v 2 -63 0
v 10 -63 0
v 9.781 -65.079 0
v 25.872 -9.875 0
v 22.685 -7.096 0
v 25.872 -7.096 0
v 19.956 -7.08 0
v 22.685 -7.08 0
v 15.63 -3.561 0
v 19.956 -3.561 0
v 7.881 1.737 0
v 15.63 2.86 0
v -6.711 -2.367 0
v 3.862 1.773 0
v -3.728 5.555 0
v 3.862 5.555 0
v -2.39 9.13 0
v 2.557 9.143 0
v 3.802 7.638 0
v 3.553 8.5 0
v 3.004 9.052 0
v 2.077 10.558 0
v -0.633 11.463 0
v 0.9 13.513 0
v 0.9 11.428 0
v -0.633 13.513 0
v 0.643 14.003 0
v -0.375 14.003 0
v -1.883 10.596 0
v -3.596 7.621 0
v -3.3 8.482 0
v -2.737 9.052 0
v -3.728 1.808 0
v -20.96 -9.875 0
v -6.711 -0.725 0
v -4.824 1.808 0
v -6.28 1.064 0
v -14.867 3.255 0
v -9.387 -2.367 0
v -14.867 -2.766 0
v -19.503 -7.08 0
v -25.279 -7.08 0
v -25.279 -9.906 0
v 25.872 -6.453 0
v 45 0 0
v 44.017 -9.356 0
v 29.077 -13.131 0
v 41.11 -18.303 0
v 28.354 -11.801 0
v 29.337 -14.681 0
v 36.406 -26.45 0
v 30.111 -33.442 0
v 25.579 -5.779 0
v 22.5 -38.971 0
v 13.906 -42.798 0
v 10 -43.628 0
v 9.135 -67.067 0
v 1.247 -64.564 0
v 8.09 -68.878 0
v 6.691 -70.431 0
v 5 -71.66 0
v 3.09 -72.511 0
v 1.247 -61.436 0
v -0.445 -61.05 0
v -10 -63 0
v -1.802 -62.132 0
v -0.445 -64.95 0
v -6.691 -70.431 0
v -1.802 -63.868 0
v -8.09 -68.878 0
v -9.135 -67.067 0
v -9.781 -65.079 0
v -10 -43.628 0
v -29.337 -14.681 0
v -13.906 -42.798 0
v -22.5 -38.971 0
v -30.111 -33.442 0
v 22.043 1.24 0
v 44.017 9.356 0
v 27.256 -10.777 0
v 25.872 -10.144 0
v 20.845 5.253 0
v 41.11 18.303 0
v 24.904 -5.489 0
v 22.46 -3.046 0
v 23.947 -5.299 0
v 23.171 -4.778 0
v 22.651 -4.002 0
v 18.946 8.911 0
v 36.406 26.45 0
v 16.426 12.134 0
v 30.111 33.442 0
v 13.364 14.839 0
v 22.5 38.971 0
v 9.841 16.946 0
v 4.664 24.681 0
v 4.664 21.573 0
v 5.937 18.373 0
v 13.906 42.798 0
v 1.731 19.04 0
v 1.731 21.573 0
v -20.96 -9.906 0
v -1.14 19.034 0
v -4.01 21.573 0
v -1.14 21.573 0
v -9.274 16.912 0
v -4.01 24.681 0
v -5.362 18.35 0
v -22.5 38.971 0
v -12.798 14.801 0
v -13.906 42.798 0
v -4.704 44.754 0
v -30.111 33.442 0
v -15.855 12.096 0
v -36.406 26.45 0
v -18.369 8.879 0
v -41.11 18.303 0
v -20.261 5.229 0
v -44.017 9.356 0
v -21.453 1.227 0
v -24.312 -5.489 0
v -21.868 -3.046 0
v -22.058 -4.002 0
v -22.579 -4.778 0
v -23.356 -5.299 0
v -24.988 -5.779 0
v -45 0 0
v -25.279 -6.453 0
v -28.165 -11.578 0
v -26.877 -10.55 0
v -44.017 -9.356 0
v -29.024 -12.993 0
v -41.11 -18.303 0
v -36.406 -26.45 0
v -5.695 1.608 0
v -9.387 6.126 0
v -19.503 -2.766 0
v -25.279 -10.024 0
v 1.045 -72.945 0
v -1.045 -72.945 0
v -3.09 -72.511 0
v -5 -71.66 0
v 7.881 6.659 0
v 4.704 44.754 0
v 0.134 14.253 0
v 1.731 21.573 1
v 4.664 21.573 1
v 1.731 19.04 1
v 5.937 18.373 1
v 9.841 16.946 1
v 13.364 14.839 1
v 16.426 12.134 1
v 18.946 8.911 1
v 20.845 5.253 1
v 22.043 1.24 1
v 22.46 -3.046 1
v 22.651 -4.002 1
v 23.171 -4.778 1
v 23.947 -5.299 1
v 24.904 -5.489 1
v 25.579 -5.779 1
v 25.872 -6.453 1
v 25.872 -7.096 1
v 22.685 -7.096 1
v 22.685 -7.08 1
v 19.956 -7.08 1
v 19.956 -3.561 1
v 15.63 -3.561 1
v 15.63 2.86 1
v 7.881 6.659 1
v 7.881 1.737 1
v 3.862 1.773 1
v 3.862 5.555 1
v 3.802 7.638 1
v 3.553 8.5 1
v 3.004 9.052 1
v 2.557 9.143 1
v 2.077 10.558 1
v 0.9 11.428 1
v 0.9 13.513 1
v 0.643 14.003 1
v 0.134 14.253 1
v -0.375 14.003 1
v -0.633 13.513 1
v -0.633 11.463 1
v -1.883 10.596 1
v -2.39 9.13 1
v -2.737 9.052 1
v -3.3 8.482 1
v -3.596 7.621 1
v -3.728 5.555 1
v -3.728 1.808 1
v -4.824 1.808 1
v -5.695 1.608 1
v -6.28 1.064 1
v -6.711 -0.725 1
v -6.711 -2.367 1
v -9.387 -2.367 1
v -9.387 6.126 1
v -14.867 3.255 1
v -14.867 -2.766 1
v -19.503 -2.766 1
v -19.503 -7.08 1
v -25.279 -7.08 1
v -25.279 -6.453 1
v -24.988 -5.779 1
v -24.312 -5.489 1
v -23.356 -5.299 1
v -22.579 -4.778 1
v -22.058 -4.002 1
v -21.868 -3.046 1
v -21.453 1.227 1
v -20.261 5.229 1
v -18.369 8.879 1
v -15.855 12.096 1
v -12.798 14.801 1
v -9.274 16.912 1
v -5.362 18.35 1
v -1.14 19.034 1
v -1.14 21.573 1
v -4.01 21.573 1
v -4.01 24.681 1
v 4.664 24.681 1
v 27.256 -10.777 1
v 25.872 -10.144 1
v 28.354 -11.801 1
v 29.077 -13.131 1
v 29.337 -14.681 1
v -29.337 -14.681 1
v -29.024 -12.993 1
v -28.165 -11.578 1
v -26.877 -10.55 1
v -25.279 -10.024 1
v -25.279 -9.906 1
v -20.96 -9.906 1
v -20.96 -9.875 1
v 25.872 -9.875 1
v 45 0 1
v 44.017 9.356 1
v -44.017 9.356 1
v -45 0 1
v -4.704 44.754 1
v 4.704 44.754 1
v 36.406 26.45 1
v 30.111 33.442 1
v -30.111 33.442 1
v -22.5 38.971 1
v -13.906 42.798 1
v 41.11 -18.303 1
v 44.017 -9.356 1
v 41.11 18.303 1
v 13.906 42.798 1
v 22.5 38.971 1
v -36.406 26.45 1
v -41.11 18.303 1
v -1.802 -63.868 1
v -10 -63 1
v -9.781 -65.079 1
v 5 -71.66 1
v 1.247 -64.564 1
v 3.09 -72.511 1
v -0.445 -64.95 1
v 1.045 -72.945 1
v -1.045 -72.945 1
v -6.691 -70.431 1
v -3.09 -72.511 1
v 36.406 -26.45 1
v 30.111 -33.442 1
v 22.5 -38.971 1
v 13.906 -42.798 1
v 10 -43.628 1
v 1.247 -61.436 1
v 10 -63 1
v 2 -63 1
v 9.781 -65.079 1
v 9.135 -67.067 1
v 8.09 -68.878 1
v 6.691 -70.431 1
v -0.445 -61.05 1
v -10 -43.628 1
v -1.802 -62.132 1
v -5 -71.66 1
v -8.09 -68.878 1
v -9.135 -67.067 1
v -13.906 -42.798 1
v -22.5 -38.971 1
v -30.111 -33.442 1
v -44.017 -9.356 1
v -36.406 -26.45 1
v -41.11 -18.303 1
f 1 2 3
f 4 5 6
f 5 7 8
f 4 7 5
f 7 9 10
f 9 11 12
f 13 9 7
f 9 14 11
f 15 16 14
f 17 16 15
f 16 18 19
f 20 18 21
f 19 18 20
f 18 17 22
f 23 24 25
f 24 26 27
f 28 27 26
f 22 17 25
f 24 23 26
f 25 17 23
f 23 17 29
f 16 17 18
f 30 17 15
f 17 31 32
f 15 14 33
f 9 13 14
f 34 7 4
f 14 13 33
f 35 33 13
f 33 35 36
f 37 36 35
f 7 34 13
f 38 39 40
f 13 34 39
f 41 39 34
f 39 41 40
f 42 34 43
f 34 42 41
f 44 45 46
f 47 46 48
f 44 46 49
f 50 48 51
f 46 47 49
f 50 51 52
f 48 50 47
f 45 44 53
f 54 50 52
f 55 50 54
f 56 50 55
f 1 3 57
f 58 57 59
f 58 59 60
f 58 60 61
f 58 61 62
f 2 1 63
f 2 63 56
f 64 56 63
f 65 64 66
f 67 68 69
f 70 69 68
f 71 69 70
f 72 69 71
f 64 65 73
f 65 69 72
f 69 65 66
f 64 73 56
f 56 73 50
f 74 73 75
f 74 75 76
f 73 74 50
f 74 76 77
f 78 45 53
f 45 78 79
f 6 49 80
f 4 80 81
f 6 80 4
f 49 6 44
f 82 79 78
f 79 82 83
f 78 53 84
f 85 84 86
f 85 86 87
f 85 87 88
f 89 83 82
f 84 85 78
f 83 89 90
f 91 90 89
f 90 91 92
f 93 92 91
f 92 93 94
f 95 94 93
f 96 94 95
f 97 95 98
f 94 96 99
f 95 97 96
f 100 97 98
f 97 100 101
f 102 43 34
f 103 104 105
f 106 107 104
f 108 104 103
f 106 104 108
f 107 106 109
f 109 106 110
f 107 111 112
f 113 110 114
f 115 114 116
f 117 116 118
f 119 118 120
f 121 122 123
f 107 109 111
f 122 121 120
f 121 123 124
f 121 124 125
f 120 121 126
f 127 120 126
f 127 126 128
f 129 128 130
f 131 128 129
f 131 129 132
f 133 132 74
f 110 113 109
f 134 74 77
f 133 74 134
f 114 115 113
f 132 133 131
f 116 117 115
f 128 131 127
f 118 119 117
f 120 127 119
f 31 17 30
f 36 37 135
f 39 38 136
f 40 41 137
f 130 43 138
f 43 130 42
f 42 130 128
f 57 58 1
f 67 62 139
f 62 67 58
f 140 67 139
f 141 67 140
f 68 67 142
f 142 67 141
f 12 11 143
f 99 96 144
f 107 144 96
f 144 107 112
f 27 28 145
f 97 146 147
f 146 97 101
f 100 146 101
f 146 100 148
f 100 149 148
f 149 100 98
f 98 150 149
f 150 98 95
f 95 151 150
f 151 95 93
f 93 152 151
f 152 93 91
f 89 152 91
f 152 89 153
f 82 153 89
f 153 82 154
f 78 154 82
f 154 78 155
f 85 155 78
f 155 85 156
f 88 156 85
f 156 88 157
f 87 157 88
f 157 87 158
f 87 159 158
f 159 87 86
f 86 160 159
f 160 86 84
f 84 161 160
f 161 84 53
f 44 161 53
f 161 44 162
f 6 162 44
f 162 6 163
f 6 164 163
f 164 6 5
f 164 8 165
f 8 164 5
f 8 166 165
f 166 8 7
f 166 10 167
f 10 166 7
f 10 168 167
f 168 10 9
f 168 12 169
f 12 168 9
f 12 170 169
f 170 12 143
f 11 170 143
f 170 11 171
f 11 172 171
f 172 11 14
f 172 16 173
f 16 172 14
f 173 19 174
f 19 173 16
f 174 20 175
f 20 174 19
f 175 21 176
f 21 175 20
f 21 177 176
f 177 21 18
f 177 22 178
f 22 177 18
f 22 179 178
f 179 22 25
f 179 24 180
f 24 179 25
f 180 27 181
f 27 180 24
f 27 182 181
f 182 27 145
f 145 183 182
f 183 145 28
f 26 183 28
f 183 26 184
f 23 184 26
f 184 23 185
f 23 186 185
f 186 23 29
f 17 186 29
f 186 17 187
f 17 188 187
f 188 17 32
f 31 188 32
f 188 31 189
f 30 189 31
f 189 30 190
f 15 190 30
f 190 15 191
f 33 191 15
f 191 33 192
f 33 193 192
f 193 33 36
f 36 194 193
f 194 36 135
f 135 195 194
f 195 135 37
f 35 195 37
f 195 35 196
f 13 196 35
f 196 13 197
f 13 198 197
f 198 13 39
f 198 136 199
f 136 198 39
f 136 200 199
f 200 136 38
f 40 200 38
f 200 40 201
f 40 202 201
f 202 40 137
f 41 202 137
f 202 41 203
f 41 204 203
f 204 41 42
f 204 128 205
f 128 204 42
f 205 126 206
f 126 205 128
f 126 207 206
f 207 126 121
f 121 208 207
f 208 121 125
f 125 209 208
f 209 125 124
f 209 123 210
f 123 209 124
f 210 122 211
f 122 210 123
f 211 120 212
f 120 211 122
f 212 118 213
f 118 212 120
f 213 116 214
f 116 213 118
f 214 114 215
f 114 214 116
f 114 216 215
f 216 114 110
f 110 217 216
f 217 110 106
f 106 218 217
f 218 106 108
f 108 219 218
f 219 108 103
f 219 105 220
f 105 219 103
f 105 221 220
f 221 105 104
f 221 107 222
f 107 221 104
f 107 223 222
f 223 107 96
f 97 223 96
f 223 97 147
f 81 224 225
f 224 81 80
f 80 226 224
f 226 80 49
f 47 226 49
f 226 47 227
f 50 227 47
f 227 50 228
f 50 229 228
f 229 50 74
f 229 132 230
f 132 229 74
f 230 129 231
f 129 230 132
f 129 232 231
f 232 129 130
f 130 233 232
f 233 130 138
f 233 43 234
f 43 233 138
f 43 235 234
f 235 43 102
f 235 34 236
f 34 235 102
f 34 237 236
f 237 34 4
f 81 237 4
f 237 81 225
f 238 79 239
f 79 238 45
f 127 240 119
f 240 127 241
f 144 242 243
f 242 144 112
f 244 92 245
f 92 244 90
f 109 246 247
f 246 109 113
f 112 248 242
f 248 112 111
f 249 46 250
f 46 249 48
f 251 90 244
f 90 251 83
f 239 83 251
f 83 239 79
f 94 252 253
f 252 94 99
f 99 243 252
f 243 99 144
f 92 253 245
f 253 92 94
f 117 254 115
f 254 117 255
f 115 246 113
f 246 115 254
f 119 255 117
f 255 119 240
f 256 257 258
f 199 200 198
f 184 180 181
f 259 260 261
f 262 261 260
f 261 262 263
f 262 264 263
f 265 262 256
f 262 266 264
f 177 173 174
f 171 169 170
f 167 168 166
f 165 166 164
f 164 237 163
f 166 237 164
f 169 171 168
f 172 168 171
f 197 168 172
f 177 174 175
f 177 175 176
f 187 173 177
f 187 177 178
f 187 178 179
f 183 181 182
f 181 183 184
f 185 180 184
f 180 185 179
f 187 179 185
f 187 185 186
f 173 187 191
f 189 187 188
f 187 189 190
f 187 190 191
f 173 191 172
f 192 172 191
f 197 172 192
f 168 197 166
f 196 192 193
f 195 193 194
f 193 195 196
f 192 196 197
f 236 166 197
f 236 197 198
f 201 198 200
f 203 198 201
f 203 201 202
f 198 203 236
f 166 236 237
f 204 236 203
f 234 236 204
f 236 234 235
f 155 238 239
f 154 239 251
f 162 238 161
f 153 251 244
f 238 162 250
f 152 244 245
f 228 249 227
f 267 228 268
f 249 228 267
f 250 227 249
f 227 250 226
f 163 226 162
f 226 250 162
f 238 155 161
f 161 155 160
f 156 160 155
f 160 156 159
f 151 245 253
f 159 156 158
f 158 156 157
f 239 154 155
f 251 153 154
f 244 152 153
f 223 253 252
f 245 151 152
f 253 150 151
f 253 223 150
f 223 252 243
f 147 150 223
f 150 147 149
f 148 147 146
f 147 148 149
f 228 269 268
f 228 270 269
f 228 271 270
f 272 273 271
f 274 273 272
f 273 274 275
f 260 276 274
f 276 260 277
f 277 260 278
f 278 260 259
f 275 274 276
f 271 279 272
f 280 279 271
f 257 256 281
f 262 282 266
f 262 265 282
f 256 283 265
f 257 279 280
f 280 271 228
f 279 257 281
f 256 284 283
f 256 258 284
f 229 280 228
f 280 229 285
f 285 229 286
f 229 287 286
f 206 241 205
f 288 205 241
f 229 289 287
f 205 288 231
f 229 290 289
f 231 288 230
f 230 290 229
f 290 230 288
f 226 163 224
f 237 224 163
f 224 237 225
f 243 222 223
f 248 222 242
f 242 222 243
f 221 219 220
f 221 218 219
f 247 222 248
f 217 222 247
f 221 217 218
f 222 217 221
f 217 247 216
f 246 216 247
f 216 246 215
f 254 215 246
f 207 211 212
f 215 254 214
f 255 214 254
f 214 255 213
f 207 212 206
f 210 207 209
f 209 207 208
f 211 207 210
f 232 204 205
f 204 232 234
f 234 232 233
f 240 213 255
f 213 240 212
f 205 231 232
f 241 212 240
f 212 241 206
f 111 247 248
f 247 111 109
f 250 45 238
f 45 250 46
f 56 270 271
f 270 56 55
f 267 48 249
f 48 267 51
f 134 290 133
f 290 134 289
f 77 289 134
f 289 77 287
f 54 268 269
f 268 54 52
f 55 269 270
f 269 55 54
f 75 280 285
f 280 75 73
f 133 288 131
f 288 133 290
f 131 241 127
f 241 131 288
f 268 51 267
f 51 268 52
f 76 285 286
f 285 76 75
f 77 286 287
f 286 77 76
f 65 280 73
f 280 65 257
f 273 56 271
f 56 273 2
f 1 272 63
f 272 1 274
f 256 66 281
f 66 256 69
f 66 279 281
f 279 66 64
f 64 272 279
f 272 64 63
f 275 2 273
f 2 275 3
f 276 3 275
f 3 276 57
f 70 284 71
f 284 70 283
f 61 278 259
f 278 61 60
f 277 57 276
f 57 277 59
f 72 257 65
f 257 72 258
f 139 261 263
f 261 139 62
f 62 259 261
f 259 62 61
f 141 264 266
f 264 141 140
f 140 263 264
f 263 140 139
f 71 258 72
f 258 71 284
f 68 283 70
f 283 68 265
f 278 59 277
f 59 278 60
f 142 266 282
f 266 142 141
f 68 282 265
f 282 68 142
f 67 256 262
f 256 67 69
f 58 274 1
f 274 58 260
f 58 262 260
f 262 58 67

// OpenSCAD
// file: ../relocately-logo.scad
// Module names are of the form poly_<inkscape-path-id>().
// As a result you can associate a polygon in this OpenSCAD program with the
//  corresponding SVG element in the Inkscape document by looking for 
//  the XML element with the attribute id="inkscape-path-id".

// Paths have their own variables so they can be imported and used 
//  in polygon(points) structures in other programs.
// The NN_points is the list of all polygon XY vertices. 
// There may be an NN_paths variable as well. If it exists then it 
//  defines the nested paths. Both must be used in the 
//  polygon(points, paths) variant of the command.

profile_scale = 1; //25.4/90; //made in inkscape in mm

// helper functions to determine the X,Y dimensions of the profiles
function min_x(shape_points) = min([ for (x = shape_points) min(x[0])]);
function max_x(shape_points) = max([ for (x = shape_points) max(x[0])]);
function min_y(shape_points) = min([ for (x = shape_points) min(x[1])]);
function max_y(shape_points) = max([ for (x = shape_points) max(x[1])]);

height = 5;
width = 1.0;


path3725_0_points = [[-4.010350,-19.681227],[-4.010350,-16.572889],[-1.140240,-16.572889],[-1.140240,-14.033510],[-5.362254,-13.350192],[-9.274041,-11.912513],[-12.797710,-9.800999],[-15.855372,-7.096173],[-18.369139,-3.878559],[-20.261122,-0.228683],[-21.453430,3.772933],[-21.868175,8.045762],[-22.058523,9.001999],[-22.579418,9.778040],[-23.355635,10.298758],[-24.311951,10.489025],[-24.987466,10.779475],[-25.279334,11.453307],[-25.279334,12.079626],[-22.518780,12.079626],[-20.959701,12.079626],[-19.502943,12.079626],[-19.502943,7.766193],[-14.867051,7.766193],[-14.867051,1.744856],[-9.387282,-1.126286],[-9.387282,7.366735],[-6.711476,7.366735],[-6.711476,5.724975],[-6.279574,3.936495],[-5.694660,3.391896],[-4.823735,3.191796],[-3.727680,3.191796],[-3.727680,-0.555263],[-3.595640,-2.621234],[-3.300372,-3.481600],[-2.736525,-4.052207],[-2.390293,-4.129722],[-1.883142,-5.595694],[-0.632777,-6.462914],[-0.632777,-8.512916],[-0.375407,-9.003306],[0.133583,-9.252924],[0.642965,-9.003306],[0.900462,-8.512916],[0.900462,-6.428290],[2.076901,-5.557847],[2.556693,-4.143158],[3.004209,-4.052207],[3.552880,-3.500352],[3.801688,-2.637903],[3.862038,-0.555263],[3.862038,3.226935],[7.881432,3.263109],[7.881432,-1.658554],[15.630313,2.140180],[15.630313,8.561493],[19.955629,8.561493],[19.955629,12.079626],[22.685179,12.079626],[22.685179,12.095633],[25.871548,12.095633],[25.871548,11.453296],[25.579421,10.779465],[24.903647,10.489015],[23.947411,10.298747],[23.171371,9.778029],[22.650654,9.001988],[22.460386,8.045752],[22.043255,3.759821],[20.845142,-0.252879],[18.945969,-3.911070],[16.425656,-7.133476],[13.364123,-9.838822],[9.841293,-11.945828],[5.937085,-13.373220],[1.731420,-14.039720],[1.731420,-16.572899],[4.663540,-16.572899],[4.663540,-19.681227],[-4.010350,-19.681227]];
path3725_1_points = [[-20.959701,14.875319],[-20.959701,14.906326],[-25.279334,14.906326],[-25.279334,15.024147],[-26.877162,15.550455],[-28.164882,16.577892],[-29.024237,17.992727],[-29.336968,19.681227],[29.336968,19.681227],[29.076619,18.131451],[28.353918,16.801318],[27.256388,15.776971],[25.871548,15.144554],[25.871548,14.875319],[22.685179,14.875319],[21.031533,14.875319],[-20.959701,14.875319]];

module poly_path3725(h, w, res=4)  {
  scale([profile_scale, -profile_scale, 1])
  union()  {
    linear_extrude(height=h)
      polygon(path3725_0_points);
    linear_extrude(height=h)
      polygon(path3725_1_points);
  }
}

// The shapes
//poly_path3725(height, width);
// main file
include <../relocately-logo.scad>


difference() {
 cylinder(1, r=45);
 translate([0, 5, 0]) poly_path3725(5, 1.0);
}

difference() {
translate([-10, -63, 0]) cube([20,  20, 1]);
translate([0, -63, 0]) cylinder(1, r=2);
}

difference() {
translate([0, -63, 0]) cylinder(1, r=10);
translate([0, -63, 0]) cylinder(1, r=2);
}
